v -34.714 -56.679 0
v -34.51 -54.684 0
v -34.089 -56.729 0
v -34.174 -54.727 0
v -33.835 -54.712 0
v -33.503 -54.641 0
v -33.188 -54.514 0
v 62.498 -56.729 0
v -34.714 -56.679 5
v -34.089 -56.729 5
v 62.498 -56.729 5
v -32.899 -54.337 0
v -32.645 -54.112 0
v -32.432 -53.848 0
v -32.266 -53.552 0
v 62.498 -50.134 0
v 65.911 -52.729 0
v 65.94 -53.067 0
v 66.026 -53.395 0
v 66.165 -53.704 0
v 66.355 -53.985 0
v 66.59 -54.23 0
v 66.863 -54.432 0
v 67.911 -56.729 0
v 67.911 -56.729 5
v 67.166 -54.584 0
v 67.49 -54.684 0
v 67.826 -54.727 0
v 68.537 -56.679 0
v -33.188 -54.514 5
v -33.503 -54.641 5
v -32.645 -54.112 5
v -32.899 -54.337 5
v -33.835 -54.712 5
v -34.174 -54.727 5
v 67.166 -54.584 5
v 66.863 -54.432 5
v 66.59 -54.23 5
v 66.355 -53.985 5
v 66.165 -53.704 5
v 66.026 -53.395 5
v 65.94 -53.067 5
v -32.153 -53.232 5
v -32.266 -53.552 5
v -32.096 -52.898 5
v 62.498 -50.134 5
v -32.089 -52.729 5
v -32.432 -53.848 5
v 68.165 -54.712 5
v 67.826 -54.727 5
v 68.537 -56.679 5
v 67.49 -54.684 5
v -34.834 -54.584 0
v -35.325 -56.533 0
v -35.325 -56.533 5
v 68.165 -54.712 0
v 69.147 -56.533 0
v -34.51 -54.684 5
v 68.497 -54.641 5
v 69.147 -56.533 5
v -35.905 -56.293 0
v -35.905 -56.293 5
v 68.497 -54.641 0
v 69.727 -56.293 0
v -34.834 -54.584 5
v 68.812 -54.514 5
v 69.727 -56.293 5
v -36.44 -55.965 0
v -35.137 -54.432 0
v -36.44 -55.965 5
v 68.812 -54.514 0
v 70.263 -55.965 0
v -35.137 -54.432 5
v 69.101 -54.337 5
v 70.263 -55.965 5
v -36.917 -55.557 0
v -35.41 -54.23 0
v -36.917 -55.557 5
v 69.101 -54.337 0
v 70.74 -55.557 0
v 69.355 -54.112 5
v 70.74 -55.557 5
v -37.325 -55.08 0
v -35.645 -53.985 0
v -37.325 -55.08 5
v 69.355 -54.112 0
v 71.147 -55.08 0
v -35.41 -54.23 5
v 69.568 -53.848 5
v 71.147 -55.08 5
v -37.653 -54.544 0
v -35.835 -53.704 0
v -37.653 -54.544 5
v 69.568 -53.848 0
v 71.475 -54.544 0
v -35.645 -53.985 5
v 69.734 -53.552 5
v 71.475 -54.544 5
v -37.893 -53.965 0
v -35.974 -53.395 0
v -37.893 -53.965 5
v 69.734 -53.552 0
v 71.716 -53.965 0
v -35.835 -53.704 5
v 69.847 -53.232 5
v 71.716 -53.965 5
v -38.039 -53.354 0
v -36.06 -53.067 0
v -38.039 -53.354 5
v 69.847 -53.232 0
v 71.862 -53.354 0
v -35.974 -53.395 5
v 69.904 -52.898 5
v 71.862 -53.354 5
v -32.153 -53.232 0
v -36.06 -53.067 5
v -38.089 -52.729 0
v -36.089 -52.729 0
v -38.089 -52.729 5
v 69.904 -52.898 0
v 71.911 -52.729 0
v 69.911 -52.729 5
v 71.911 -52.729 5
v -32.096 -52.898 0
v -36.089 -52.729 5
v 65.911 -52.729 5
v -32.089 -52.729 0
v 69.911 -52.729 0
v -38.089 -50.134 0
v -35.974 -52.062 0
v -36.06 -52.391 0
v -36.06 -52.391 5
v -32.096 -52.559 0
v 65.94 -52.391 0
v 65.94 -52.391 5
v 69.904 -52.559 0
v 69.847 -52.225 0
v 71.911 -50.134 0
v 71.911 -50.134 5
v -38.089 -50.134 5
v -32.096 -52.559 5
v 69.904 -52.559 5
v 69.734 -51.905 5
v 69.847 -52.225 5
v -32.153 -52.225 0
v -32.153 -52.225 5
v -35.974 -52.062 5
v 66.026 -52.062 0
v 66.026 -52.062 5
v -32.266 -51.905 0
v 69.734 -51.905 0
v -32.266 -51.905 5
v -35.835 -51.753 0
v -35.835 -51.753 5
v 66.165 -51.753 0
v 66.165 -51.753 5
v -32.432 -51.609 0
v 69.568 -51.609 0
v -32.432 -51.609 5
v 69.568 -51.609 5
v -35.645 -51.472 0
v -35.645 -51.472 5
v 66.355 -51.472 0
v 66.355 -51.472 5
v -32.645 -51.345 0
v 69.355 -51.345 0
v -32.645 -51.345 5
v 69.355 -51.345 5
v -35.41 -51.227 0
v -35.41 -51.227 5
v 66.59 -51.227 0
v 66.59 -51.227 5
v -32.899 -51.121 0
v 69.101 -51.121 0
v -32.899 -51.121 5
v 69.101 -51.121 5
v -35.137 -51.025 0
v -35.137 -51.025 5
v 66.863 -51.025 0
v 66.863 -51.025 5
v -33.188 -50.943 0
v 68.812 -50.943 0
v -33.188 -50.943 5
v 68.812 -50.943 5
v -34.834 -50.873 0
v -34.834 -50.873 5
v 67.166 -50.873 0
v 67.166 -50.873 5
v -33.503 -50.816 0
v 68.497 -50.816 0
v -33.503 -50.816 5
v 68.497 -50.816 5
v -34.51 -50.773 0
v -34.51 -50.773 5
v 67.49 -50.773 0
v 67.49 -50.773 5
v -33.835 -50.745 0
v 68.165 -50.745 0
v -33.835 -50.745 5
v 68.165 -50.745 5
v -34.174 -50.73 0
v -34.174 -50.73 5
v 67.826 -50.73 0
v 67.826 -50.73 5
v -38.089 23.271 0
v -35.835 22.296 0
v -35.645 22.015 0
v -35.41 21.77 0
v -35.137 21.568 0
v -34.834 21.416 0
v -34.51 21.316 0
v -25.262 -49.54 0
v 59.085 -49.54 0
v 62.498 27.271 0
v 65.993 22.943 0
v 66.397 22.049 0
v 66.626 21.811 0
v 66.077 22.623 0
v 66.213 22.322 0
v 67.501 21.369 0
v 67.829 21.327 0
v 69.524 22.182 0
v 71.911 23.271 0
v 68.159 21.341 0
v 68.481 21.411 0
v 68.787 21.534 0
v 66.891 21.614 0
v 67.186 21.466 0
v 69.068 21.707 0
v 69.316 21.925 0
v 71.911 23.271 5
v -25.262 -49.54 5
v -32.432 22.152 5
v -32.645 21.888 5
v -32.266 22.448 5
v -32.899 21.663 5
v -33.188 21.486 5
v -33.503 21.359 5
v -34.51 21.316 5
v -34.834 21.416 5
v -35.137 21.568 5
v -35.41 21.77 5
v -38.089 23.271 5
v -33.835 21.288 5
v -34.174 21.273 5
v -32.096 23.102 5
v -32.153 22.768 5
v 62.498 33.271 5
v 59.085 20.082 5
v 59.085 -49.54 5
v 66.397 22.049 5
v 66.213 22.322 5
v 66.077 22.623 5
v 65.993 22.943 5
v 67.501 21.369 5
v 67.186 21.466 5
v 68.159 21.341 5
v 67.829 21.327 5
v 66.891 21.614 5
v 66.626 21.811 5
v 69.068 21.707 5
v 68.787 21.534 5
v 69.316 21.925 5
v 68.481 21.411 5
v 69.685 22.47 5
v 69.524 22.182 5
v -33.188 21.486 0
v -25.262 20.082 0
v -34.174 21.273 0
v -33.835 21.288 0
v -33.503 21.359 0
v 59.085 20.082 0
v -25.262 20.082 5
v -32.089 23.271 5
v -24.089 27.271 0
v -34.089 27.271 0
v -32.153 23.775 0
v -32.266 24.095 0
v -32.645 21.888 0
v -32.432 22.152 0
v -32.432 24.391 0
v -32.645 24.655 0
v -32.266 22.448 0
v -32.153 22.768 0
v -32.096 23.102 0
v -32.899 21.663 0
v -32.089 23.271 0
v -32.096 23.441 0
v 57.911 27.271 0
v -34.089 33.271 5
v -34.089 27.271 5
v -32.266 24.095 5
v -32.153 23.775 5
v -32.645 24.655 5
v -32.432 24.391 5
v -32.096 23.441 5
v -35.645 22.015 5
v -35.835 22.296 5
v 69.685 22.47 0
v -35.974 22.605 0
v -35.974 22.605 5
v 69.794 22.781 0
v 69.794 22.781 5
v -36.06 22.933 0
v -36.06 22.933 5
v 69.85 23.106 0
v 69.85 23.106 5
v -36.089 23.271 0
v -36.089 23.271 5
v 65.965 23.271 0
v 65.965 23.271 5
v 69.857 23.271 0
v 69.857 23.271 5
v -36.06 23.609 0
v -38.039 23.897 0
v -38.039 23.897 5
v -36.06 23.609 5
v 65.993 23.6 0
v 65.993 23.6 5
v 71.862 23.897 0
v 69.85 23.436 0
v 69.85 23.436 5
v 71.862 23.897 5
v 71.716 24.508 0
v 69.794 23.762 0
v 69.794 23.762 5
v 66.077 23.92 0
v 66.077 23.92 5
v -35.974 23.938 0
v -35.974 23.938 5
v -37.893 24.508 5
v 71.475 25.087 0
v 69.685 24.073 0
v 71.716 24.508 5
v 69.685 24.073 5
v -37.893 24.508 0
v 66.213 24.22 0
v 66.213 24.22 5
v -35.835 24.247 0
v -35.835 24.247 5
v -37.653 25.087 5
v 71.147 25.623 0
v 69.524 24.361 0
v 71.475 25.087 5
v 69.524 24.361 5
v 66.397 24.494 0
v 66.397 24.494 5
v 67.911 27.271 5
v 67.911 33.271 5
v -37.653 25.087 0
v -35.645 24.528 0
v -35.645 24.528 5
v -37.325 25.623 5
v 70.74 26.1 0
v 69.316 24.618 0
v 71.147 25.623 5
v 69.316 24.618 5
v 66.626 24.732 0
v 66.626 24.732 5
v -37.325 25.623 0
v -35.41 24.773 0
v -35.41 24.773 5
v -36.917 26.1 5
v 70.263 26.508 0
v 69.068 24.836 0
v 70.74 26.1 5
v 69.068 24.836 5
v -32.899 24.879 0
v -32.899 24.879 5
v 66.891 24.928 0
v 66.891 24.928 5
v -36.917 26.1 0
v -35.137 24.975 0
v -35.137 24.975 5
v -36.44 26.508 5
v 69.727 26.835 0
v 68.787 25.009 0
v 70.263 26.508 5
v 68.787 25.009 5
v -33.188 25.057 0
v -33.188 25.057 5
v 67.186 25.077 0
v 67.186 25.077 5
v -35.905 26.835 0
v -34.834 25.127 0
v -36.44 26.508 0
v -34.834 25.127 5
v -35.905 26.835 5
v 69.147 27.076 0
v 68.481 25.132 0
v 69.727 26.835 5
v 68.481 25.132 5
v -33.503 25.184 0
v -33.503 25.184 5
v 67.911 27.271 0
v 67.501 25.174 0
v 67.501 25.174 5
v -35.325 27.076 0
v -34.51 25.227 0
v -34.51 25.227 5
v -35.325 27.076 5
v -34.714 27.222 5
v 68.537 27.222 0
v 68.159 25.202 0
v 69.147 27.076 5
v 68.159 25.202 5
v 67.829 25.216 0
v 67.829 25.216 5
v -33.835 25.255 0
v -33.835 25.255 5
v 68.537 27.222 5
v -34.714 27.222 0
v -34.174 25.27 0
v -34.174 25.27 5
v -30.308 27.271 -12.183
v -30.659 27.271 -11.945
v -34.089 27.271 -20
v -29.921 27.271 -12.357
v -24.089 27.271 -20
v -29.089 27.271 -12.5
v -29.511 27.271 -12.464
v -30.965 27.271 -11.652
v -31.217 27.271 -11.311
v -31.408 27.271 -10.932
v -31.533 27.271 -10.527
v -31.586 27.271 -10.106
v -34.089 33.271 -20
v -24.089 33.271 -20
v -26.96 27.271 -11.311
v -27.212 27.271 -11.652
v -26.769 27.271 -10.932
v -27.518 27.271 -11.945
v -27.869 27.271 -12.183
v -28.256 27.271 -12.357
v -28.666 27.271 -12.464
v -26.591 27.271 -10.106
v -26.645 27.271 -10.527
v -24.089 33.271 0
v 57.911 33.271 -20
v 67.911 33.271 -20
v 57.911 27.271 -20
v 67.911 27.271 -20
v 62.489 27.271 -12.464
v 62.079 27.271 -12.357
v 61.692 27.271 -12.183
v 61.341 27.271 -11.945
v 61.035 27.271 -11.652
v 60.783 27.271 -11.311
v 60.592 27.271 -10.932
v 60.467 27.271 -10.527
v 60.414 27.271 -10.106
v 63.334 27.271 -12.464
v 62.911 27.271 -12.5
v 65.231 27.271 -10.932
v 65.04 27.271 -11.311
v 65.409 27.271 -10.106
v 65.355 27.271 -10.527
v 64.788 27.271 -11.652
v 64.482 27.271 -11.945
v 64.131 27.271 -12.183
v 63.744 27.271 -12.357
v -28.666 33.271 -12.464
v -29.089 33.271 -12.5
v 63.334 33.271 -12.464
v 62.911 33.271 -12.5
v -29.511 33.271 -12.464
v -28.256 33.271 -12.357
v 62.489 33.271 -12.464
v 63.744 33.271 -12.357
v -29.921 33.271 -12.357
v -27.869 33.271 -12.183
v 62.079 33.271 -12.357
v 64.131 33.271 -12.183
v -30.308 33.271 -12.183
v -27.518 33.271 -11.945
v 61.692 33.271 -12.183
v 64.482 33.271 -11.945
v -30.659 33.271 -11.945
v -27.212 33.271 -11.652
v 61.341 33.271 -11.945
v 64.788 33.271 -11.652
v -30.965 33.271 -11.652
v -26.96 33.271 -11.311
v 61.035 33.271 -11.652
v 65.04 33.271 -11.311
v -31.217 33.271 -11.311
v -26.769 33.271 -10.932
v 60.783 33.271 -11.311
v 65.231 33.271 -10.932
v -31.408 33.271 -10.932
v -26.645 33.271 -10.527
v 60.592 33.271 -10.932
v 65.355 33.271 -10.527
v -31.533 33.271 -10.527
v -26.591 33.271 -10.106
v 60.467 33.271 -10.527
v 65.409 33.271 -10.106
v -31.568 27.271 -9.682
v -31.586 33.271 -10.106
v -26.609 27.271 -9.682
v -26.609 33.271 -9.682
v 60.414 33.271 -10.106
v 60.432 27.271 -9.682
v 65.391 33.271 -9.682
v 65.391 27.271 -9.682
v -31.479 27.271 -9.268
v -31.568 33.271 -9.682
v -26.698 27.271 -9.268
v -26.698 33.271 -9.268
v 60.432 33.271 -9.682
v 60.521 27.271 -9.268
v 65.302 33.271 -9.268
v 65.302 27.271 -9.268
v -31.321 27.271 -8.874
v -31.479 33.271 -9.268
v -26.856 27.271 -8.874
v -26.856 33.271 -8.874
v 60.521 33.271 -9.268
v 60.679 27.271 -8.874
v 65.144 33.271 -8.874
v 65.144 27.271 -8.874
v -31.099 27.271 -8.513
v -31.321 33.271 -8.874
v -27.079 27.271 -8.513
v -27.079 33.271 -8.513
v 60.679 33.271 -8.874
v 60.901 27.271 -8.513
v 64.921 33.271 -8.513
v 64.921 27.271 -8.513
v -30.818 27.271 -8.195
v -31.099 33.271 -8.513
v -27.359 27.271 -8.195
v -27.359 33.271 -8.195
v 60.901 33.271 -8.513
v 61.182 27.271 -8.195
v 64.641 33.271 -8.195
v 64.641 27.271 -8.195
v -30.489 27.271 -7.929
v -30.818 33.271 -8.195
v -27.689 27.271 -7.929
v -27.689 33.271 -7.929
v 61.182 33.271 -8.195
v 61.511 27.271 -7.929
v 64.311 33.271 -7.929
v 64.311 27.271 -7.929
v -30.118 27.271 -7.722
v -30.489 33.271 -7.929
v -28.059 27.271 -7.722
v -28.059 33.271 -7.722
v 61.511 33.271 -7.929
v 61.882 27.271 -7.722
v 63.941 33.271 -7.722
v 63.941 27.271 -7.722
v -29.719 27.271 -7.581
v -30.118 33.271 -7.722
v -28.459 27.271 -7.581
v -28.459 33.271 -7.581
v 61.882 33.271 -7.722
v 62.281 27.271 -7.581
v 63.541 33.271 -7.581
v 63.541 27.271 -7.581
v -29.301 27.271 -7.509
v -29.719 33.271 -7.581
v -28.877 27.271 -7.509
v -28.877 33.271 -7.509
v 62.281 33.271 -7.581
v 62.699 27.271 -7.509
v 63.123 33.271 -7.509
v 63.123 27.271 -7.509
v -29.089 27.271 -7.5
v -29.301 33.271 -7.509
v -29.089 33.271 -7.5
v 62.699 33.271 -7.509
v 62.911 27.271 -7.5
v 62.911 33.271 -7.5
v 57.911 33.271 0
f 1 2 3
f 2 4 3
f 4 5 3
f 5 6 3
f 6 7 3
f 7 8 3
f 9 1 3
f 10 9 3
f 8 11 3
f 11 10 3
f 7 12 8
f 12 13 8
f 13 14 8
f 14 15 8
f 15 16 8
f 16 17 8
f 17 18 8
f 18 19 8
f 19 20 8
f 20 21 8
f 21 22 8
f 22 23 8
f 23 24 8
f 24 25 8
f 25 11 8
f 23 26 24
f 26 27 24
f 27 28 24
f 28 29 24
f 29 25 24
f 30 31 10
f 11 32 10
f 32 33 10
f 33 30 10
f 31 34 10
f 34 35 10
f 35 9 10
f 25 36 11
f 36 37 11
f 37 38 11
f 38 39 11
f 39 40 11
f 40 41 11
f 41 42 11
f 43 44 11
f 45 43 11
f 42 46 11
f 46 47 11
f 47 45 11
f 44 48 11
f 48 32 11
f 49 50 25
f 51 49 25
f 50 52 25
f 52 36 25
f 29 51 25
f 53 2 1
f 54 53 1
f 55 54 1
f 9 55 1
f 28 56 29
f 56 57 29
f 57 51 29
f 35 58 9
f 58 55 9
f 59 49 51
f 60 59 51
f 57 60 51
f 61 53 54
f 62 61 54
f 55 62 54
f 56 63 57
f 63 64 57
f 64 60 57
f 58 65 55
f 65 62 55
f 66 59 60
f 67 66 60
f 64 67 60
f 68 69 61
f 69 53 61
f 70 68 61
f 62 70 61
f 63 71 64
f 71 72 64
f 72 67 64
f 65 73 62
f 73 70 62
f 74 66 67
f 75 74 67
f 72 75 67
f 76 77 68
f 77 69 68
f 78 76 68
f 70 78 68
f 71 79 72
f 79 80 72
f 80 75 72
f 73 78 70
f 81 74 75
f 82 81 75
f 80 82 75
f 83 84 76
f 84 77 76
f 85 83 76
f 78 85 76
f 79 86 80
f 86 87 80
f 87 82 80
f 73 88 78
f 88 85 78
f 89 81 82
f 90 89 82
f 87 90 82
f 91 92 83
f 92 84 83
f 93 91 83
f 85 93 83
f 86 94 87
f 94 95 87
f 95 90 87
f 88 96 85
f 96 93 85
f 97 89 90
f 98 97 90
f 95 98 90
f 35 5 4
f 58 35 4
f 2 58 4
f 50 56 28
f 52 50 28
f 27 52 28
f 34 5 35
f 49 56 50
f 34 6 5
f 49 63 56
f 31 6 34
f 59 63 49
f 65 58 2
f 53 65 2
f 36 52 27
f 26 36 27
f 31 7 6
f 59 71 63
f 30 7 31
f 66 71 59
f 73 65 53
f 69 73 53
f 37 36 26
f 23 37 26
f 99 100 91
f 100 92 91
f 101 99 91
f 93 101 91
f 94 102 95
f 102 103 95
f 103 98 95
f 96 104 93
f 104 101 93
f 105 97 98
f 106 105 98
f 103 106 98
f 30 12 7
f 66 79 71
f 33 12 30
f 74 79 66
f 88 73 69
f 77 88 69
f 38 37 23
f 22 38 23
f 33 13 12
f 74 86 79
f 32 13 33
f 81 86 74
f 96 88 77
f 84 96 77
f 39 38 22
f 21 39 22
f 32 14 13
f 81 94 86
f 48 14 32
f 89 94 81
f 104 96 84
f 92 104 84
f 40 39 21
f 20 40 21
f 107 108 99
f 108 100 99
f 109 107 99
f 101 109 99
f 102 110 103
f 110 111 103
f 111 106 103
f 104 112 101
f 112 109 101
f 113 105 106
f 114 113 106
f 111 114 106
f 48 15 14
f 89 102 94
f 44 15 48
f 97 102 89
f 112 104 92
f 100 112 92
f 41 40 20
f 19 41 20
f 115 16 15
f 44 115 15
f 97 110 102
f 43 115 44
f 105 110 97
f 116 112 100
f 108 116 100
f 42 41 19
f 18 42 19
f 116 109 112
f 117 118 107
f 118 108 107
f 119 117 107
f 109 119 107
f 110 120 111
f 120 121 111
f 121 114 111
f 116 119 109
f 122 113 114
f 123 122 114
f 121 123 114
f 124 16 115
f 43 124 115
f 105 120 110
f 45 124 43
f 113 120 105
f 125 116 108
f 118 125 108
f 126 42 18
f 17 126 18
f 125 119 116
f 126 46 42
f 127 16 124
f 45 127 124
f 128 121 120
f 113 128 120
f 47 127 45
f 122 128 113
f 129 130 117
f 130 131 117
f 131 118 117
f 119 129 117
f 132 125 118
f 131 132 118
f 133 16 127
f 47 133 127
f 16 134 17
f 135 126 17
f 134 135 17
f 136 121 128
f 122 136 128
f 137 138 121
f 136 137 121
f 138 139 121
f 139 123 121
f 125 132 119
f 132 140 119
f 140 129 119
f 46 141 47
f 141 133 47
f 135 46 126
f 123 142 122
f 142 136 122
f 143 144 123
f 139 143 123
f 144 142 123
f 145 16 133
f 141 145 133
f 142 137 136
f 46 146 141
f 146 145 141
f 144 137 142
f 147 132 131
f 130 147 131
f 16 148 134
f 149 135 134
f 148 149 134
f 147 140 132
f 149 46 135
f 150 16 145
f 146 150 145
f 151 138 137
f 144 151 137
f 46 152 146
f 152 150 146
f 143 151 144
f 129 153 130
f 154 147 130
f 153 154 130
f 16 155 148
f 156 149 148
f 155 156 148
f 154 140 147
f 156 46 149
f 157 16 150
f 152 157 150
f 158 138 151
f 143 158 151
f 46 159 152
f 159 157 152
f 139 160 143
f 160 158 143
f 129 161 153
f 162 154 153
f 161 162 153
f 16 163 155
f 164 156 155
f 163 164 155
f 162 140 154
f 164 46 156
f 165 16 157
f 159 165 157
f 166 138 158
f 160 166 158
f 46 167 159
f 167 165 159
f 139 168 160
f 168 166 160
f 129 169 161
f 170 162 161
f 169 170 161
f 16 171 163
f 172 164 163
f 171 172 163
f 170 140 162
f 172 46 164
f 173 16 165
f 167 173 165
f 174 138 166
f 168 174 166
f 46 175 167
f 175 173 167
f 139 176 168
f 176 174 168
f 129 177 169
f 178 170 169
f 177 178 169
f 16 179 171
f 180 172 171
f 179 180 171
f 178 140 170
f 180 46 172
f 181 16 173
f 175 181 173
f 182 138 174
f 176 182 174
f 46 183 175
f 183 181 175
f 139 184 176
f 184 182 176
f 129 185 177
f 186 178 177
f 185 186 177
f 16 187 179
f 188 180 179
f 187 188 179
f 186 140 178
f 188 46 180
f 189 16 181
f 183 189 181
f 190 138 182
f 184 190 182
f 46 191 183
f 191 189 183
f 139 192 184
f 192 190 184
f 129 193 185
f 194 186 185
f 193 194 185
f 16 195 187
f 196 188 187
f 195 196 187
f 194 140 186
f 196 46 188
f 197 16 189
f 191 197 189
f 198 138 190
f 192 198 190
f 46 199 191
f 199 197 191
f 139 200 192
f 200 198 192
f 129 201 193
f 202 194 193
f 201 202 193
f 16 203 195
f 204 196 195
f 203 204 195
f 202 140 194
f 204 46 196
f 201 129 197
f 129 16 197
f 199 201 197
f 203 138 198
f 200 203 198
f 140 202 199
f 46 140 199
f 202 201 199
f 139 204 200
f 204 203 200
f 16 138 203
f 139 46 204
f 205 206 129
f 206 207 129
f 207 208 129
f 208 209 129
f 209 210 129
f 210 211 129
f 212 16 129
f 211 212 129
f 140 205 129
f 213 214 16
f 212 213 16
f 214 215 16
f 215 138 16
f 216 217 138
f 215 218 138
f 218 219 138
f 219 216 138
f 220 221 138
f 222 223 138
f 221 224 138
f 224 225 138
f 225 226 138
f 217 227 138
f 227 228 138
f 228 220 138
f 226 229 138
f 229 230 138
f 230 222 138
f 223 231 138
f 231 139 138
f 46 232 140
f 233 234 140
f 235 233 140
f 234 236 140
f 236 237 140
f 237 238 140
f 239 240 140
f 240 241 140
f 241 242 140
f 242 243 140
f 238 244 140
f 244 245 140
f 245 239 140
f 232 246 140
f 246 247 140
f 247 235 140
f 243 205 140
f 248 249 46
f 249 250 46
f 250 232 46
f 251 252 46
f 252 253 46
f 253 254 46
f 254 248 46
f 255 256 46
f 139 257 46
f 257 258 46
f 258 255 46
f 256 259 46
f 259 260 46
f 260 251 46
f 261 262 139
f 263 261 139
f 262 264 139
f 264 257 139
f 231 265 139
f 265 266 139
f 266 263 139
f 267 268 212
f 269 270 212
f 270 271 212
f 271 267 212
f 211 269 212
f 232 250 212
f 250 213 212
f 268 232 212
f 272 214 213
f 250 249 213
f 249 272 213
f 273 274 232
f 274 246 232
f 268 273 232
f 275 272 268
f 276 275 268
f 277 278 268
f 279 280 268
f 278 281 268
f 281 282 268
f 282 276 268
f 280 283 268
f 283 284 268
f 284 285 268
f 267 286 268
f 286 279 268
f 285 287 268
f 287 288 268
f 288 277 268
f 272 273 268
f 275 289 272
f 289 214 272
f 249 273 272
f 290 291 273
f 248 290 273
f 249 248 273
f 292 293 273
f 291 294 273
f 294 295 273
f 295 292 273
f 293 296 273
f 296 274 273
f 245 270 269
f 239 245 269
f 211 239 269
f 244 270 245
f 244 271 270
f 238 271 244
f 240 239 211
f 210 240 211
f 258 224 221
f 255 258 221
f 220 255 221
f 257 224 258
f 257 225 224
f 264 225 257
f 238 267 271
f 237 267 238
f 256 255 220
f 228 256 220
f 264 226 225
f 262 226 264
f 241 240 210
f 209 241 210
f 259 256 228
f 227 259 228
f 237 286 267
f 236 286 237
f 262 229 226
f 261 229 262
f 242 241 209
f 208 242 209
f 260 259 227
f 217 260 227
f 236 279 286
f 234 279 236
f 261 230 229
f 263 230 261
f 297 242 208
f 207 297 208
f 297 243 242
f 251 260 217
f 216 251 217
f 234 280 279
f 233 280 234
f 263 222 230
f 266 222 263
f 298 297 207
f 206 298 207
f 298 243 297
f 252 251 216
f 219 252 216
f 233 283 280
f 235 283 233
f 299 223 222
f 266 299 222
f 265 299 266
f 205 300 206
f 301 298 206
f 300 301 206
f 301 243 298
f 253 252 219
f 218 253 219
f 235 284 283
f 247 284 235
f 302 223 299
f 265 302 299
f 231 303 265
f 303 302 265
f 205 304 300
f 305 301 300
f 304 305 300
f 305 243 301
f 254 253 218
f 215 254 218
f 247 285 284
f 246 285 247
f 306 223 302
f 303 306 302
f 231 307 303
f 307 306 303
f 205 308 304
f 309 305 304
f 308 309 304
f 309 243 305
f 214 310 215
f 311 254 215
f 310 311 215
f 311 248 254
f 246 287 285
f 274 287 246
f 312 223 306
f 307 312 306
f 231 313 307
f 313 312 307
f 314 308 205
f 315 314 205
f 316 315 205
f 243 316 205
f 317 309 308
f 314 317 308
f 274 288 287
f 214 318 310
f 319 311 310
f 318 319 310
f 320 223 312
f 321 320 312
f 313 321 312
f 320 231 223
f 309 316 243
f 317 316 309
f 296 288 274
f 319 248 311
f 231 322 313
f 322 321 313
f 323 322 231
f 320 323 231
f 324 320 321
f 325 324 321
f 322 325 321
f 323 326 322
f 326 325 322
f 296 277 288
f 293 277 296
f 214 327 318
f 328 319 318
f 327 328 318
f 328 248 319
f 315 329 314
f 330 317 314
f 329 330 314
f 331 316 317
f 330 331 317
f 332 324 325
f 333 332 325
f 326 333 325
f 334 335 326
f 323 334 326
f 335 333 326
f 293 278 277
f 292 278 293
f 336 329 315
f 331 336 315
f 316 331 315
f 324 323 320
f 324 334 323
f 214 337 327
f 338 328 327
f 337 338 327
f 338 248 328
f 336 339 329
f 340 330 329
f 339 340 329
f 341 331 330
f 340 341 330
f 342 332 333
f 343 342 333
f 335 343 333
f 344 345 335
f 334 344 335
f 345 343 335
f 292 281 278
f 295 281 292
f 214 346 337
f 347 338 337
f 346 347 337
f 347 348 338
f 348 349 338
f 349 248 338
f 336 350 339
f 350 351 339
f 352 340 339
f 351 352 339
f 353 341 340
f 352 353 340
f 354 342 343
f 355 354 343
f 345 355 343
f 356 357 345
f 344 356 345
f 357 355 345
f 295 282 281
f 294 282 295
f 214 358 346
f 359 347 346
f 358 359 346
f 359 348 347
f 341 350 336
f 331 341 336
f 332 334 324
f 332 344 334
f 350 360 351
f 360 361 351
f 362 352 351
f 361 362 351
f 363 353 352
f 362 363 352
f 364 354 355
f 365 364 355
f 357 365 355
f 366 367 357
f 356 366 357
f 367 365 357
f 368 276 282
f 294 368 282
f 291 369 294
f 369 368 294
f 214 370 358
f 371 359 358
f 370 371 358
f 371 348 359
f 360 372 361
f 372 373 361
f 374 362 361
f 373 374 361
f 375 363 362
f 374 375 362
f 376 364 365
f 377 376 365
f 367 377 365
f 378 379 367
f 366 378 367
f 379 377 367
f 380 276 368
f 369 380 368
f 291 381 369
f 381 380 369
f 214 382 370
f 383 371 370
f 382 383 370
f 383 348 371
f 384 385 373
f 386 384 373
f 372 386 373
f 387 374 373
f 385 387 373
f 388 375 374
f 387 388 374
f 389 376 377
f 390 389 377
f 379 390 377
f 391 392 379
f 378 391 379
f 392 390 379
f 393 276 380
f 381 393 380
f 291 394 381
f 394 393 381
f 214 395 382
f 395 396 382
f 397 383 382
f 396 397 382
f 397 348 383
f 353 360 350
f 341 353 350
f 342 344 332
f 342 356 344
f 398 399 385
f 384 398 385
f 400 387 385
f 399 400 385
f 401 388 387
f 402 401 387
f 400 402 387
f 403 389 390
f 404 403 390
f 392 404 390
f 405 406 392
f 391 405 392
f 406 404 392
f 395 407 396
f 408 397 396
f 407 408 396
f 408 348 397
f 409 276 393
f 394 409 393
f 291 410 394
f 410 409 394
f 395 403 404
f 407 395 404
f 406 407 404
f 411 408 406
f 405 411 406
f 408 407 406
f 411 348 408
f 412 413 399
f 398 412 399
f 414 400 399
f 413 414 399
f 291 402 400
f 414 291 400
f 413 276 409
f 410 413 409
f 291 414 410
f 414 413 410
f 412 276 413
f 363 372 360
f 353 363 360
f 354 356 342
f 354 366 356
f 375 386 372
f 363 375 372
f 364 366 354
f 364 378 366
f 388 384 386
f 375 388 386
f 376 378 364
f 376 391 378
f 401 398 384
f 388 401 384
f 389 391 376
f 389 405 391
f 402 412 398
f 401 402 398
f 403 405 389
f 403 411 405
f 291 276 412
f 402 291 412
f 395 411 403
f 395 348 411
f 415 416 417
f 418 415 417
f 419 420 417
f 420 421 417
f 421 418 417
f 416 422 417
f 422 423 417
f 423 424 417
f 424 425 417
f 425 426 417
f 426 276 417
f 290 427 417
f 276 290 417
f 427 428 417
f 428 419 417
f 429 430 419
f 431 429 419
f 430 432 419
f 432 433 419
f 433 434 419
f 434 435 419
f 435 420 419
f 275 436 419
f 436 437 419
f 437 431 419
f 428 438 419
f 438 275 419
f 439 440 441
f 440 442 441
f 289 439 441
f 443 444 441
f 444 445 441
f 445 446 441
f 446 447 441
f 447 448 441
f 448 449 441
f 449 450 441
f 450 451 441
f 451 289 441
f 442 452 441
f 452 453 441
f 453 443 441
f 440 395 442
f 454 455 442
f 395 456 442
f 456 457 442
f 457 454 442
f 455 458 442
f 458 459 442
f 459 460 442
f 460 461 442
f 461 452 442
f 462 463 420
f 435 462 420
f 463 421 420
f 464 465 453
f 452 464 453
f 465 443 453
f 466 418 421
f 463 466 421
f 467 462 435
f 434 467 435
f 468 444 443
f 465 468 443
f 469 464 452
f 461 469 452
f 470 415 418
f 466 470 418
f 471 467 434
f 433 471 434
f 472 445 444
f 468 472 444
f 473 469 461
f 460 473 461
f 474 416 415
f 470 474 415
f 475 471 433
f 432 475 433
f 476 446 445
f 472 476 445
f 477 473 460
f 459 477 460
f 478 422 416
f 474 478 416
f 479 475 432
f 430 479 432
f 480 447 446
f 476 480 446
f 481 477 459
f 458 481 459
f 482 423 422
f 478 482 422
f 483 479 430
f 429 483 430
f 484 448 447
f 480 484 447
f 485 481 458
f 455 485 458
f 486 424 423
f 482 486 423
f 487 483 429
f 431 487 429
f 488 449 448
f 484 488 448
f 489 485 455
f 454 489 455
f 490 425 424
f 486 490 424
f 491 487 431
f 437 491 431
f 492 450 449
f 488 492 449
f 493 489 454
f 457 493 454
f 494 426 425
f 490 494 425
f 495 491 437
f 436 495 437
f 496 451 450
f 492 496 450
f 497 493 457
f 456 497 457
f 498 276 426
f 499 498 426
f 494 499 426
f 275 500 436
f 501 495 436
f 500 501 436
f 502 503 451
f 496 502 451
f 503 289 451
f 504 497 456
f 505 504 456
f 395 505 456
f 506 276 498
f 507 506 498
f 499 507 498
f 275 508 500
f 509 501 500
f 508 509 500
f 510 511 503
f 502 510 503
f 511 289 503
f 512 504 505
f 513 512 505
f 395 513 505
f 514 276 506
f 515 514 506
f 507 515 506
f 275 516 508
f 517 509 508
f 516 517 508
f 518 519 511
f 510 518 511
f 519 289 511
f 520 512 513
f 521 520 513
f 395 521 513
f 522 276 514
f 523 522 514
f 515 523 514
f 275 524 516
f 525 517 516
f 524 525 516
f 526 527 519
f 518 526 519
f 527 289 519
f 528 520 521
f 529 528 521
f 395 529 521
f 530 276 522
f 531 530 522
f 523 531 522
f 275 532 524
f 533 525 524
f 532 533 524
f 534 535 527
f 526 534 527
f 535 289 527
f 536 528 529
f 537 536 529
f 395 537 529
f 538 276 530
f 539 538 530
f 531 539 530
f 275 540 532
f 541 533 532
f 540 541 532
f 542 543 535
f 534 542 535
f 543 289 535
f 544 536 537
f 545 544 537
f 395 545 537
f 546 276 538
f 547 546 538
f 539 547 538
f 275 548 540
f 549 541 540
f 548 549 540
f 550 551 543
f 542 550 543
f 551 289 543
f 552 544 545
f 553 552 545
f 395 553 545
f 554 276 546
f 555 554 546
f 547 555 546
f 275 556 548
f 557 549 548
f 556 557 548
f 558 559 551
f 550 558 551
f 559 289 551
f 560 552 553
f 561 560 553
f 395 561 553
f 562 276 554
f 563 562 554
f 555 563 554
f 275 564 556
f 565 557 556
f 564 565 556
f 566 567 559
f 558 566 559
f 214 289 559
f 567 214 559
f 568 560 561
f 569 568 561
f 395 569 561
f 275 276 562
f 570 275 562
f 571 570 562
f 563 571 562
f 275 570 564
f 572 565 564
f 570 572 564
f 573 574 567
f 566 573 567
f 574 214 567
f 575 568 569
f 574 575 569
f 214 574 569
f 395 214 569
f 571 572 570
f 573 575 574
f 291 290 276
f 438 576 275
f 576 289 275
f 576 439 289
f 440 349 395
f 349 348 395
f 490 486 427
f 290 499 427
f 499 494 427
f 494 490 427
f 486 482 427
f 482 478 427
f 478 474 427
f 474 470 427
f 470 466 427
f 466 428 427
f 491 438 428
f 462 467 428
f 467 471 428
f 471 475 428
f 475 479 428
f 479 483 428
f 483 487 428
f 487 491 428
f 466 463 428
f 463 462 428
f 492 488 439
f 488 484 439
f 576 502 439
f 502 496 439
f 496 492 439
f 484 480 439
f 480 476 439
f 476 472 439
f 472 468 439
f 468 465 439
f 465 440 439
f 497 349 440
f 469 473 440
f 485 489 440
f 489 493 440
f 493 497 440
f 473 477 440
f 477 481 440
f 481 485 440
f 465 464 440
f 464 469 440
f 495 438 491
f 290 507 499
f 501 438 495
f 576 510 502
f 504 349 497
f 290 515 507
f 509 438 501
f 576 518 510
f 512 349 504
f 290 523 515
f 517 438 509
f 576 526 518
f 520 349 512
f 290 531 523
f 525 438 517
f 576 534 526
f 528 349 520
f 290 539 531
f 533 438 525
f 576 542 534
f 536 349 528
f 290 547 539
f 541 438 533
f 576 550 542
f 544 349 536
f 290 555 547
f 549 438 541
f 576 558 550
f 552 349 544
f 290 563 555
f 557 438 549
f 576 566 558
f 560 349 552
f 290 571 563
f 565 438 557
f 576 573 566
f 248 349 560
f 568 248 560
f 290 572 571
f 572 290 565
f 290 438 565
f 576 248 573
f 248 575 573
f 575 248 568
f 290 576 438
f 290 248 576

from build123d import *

# Parameters (mm, degrees)
SKETCH_1_R          = 1.945914192
SKETCH_1_R_2        = 2
EXTRUDE_1_DEPTH     = 5
SKETCH_2_W          = 10
SKETCH_2_H          = 20
SKETCH_2_R          = 2.5
SKETCH_2_H_2        = 5
SKETCH_2_W_2        = 82
EXTRUDE_2_DEPTH     = 6
SKETCH_3_W          = 84.346489647
SKETCH_3_H          = 69.622064444
CUT_EXTRUDE_1_DEPTH = 6


with BuildPart() as part:
    # 草图1 → 凸台-拉伸1 (new body)
    with BuildSketch(Plane.XY):
        with BuildLine():
            Line((-34.088642659, 27.271468144), (67.911357341, 27.271468144))
            ThreePointArc((67.911357341, 27.271468144), (70.739784465, 26.099895269), (71.911357341, 23.271468144))
            Line((71.911357341, 23.271468144), (71.911357341, -52.728531856))
            ThreePointArc((71.911357341, -52.728531856), (70.739784465, -55.556958981), (67.911357341, -56.728531856))
            Line((67.911357341, -56.728531856), (-34.088642659, -56.728531856))
            ThreePointArc((-34.088642659, -56.728531856), (-36.917069784, -55.556958981), (-38.088642659, -52.728531856))
            Line((-38.088642659, -52.728531856), (-38.088642659, 23.271468144))
            ThreePointArc((-38.088642659, 23.271468144), (-36.917069784, 26.099895269), (-34.088642659, 27.271468144))
        make_face()
        with Locations((67.911357341, 23.271468144)):
            Circle(SKETCH_1_R, mode=Mode.SUBTRACT)
        with Locations((-34.088642659, 23.271468144)):
            Circle(SKETCH_1_R_2, mode=Mode.SUBTRACT)
        with Locations((67.911357341, -52.728531856)):
            Circle(SKETCH_1_R_2, mode=Mode.SUBTRACT)
        with Locations((-34.088642659, -52.728531856)):
            Circle(SKETCH_1_R_2, mode=Mode.SUBTRACT)
    extrude(amount=EXTRUDE_1_DEPTH)

    # 草图2 → 凸台-拉伸2 (add)
    # profile 1 of 5: a face of its own
    with BuildSketch(Plane(origin=(0, 27.271468144, 0), x_dir=(1, 0, 0), z_dir=(0, 1, 0))):
        with Locations((-29.088642659, 10)):
            Rectangle(SKETCH_2_W, SKETCH_2_H)
        with Locations(Location((-29.088642659, 10, 0), (0, 0, 270))):
            Circle(SKETCH_2_R, mode=Mode.SUBTRACT)
    # profile 2 of 5: a face of its own
    with BuildSketch(Plane(origin=(0, 27.271468144, 0), x_dir=(1, 0, 0), z_dir=(0, 1, 0))):
        with Locations((-29.088642659, -2.5)):
            Rectangle(SKETCH_2_W, SKETCH_2_H_2)
    # profile 3 of 5: a face of its own
    with BuildSketch(Plane(origin=(0, 27.271468144, 0), x_dir=(1, 0, 0), z_dir=(0, 1, 0))):
        with Locations((16.911357341, -2.5)):
            Rectangle(SKETCH_2_W_2, SKETCH_2_H_2)
    # profile 4 of 5: a face of its own
    with BuildSketch(Plane(origin=(0, 27.271468144, 0), x_dir=(1, 0, 0), z_dir=(0, 1, 0))):
        with Locations((62.911357341, 10)):
            Rectangle(SKETCH_2_W, SKETCH_2_H)
        with Locations(Location((62.911357341, 10, 0), (0, 0, 270))):
            Circle(SKETCH_2_R, mode=Mode.SUBTRACT)
    # profile 5 of 5: a face of its own
    with BuildSketch(Plane(origin=(0, 27.271468144, 0), x_dir=(1, 0, 0), z_dir=(0, 1, 0))):
        with Locations((62.911357341, -2.5)):
            Rectangle(SKETCH_2_W, SKETCH_2_H_2)
    extrude(amount=EXTRUDE_2_DEPTH)

    # 草图3 → 切除-拉伸1 (cut)
    with BuildSketch(Plane.XY.offset(5)):
        with Locations((16.911357341, -14.728531856)):
            Rectangle(SKETCH_3_W, SKETCH_3_H)
    extrude(amount=-CUT_EXTRUDE_1_DEPTH, mode=Mode.SUBTRACT)


solid = part.part
